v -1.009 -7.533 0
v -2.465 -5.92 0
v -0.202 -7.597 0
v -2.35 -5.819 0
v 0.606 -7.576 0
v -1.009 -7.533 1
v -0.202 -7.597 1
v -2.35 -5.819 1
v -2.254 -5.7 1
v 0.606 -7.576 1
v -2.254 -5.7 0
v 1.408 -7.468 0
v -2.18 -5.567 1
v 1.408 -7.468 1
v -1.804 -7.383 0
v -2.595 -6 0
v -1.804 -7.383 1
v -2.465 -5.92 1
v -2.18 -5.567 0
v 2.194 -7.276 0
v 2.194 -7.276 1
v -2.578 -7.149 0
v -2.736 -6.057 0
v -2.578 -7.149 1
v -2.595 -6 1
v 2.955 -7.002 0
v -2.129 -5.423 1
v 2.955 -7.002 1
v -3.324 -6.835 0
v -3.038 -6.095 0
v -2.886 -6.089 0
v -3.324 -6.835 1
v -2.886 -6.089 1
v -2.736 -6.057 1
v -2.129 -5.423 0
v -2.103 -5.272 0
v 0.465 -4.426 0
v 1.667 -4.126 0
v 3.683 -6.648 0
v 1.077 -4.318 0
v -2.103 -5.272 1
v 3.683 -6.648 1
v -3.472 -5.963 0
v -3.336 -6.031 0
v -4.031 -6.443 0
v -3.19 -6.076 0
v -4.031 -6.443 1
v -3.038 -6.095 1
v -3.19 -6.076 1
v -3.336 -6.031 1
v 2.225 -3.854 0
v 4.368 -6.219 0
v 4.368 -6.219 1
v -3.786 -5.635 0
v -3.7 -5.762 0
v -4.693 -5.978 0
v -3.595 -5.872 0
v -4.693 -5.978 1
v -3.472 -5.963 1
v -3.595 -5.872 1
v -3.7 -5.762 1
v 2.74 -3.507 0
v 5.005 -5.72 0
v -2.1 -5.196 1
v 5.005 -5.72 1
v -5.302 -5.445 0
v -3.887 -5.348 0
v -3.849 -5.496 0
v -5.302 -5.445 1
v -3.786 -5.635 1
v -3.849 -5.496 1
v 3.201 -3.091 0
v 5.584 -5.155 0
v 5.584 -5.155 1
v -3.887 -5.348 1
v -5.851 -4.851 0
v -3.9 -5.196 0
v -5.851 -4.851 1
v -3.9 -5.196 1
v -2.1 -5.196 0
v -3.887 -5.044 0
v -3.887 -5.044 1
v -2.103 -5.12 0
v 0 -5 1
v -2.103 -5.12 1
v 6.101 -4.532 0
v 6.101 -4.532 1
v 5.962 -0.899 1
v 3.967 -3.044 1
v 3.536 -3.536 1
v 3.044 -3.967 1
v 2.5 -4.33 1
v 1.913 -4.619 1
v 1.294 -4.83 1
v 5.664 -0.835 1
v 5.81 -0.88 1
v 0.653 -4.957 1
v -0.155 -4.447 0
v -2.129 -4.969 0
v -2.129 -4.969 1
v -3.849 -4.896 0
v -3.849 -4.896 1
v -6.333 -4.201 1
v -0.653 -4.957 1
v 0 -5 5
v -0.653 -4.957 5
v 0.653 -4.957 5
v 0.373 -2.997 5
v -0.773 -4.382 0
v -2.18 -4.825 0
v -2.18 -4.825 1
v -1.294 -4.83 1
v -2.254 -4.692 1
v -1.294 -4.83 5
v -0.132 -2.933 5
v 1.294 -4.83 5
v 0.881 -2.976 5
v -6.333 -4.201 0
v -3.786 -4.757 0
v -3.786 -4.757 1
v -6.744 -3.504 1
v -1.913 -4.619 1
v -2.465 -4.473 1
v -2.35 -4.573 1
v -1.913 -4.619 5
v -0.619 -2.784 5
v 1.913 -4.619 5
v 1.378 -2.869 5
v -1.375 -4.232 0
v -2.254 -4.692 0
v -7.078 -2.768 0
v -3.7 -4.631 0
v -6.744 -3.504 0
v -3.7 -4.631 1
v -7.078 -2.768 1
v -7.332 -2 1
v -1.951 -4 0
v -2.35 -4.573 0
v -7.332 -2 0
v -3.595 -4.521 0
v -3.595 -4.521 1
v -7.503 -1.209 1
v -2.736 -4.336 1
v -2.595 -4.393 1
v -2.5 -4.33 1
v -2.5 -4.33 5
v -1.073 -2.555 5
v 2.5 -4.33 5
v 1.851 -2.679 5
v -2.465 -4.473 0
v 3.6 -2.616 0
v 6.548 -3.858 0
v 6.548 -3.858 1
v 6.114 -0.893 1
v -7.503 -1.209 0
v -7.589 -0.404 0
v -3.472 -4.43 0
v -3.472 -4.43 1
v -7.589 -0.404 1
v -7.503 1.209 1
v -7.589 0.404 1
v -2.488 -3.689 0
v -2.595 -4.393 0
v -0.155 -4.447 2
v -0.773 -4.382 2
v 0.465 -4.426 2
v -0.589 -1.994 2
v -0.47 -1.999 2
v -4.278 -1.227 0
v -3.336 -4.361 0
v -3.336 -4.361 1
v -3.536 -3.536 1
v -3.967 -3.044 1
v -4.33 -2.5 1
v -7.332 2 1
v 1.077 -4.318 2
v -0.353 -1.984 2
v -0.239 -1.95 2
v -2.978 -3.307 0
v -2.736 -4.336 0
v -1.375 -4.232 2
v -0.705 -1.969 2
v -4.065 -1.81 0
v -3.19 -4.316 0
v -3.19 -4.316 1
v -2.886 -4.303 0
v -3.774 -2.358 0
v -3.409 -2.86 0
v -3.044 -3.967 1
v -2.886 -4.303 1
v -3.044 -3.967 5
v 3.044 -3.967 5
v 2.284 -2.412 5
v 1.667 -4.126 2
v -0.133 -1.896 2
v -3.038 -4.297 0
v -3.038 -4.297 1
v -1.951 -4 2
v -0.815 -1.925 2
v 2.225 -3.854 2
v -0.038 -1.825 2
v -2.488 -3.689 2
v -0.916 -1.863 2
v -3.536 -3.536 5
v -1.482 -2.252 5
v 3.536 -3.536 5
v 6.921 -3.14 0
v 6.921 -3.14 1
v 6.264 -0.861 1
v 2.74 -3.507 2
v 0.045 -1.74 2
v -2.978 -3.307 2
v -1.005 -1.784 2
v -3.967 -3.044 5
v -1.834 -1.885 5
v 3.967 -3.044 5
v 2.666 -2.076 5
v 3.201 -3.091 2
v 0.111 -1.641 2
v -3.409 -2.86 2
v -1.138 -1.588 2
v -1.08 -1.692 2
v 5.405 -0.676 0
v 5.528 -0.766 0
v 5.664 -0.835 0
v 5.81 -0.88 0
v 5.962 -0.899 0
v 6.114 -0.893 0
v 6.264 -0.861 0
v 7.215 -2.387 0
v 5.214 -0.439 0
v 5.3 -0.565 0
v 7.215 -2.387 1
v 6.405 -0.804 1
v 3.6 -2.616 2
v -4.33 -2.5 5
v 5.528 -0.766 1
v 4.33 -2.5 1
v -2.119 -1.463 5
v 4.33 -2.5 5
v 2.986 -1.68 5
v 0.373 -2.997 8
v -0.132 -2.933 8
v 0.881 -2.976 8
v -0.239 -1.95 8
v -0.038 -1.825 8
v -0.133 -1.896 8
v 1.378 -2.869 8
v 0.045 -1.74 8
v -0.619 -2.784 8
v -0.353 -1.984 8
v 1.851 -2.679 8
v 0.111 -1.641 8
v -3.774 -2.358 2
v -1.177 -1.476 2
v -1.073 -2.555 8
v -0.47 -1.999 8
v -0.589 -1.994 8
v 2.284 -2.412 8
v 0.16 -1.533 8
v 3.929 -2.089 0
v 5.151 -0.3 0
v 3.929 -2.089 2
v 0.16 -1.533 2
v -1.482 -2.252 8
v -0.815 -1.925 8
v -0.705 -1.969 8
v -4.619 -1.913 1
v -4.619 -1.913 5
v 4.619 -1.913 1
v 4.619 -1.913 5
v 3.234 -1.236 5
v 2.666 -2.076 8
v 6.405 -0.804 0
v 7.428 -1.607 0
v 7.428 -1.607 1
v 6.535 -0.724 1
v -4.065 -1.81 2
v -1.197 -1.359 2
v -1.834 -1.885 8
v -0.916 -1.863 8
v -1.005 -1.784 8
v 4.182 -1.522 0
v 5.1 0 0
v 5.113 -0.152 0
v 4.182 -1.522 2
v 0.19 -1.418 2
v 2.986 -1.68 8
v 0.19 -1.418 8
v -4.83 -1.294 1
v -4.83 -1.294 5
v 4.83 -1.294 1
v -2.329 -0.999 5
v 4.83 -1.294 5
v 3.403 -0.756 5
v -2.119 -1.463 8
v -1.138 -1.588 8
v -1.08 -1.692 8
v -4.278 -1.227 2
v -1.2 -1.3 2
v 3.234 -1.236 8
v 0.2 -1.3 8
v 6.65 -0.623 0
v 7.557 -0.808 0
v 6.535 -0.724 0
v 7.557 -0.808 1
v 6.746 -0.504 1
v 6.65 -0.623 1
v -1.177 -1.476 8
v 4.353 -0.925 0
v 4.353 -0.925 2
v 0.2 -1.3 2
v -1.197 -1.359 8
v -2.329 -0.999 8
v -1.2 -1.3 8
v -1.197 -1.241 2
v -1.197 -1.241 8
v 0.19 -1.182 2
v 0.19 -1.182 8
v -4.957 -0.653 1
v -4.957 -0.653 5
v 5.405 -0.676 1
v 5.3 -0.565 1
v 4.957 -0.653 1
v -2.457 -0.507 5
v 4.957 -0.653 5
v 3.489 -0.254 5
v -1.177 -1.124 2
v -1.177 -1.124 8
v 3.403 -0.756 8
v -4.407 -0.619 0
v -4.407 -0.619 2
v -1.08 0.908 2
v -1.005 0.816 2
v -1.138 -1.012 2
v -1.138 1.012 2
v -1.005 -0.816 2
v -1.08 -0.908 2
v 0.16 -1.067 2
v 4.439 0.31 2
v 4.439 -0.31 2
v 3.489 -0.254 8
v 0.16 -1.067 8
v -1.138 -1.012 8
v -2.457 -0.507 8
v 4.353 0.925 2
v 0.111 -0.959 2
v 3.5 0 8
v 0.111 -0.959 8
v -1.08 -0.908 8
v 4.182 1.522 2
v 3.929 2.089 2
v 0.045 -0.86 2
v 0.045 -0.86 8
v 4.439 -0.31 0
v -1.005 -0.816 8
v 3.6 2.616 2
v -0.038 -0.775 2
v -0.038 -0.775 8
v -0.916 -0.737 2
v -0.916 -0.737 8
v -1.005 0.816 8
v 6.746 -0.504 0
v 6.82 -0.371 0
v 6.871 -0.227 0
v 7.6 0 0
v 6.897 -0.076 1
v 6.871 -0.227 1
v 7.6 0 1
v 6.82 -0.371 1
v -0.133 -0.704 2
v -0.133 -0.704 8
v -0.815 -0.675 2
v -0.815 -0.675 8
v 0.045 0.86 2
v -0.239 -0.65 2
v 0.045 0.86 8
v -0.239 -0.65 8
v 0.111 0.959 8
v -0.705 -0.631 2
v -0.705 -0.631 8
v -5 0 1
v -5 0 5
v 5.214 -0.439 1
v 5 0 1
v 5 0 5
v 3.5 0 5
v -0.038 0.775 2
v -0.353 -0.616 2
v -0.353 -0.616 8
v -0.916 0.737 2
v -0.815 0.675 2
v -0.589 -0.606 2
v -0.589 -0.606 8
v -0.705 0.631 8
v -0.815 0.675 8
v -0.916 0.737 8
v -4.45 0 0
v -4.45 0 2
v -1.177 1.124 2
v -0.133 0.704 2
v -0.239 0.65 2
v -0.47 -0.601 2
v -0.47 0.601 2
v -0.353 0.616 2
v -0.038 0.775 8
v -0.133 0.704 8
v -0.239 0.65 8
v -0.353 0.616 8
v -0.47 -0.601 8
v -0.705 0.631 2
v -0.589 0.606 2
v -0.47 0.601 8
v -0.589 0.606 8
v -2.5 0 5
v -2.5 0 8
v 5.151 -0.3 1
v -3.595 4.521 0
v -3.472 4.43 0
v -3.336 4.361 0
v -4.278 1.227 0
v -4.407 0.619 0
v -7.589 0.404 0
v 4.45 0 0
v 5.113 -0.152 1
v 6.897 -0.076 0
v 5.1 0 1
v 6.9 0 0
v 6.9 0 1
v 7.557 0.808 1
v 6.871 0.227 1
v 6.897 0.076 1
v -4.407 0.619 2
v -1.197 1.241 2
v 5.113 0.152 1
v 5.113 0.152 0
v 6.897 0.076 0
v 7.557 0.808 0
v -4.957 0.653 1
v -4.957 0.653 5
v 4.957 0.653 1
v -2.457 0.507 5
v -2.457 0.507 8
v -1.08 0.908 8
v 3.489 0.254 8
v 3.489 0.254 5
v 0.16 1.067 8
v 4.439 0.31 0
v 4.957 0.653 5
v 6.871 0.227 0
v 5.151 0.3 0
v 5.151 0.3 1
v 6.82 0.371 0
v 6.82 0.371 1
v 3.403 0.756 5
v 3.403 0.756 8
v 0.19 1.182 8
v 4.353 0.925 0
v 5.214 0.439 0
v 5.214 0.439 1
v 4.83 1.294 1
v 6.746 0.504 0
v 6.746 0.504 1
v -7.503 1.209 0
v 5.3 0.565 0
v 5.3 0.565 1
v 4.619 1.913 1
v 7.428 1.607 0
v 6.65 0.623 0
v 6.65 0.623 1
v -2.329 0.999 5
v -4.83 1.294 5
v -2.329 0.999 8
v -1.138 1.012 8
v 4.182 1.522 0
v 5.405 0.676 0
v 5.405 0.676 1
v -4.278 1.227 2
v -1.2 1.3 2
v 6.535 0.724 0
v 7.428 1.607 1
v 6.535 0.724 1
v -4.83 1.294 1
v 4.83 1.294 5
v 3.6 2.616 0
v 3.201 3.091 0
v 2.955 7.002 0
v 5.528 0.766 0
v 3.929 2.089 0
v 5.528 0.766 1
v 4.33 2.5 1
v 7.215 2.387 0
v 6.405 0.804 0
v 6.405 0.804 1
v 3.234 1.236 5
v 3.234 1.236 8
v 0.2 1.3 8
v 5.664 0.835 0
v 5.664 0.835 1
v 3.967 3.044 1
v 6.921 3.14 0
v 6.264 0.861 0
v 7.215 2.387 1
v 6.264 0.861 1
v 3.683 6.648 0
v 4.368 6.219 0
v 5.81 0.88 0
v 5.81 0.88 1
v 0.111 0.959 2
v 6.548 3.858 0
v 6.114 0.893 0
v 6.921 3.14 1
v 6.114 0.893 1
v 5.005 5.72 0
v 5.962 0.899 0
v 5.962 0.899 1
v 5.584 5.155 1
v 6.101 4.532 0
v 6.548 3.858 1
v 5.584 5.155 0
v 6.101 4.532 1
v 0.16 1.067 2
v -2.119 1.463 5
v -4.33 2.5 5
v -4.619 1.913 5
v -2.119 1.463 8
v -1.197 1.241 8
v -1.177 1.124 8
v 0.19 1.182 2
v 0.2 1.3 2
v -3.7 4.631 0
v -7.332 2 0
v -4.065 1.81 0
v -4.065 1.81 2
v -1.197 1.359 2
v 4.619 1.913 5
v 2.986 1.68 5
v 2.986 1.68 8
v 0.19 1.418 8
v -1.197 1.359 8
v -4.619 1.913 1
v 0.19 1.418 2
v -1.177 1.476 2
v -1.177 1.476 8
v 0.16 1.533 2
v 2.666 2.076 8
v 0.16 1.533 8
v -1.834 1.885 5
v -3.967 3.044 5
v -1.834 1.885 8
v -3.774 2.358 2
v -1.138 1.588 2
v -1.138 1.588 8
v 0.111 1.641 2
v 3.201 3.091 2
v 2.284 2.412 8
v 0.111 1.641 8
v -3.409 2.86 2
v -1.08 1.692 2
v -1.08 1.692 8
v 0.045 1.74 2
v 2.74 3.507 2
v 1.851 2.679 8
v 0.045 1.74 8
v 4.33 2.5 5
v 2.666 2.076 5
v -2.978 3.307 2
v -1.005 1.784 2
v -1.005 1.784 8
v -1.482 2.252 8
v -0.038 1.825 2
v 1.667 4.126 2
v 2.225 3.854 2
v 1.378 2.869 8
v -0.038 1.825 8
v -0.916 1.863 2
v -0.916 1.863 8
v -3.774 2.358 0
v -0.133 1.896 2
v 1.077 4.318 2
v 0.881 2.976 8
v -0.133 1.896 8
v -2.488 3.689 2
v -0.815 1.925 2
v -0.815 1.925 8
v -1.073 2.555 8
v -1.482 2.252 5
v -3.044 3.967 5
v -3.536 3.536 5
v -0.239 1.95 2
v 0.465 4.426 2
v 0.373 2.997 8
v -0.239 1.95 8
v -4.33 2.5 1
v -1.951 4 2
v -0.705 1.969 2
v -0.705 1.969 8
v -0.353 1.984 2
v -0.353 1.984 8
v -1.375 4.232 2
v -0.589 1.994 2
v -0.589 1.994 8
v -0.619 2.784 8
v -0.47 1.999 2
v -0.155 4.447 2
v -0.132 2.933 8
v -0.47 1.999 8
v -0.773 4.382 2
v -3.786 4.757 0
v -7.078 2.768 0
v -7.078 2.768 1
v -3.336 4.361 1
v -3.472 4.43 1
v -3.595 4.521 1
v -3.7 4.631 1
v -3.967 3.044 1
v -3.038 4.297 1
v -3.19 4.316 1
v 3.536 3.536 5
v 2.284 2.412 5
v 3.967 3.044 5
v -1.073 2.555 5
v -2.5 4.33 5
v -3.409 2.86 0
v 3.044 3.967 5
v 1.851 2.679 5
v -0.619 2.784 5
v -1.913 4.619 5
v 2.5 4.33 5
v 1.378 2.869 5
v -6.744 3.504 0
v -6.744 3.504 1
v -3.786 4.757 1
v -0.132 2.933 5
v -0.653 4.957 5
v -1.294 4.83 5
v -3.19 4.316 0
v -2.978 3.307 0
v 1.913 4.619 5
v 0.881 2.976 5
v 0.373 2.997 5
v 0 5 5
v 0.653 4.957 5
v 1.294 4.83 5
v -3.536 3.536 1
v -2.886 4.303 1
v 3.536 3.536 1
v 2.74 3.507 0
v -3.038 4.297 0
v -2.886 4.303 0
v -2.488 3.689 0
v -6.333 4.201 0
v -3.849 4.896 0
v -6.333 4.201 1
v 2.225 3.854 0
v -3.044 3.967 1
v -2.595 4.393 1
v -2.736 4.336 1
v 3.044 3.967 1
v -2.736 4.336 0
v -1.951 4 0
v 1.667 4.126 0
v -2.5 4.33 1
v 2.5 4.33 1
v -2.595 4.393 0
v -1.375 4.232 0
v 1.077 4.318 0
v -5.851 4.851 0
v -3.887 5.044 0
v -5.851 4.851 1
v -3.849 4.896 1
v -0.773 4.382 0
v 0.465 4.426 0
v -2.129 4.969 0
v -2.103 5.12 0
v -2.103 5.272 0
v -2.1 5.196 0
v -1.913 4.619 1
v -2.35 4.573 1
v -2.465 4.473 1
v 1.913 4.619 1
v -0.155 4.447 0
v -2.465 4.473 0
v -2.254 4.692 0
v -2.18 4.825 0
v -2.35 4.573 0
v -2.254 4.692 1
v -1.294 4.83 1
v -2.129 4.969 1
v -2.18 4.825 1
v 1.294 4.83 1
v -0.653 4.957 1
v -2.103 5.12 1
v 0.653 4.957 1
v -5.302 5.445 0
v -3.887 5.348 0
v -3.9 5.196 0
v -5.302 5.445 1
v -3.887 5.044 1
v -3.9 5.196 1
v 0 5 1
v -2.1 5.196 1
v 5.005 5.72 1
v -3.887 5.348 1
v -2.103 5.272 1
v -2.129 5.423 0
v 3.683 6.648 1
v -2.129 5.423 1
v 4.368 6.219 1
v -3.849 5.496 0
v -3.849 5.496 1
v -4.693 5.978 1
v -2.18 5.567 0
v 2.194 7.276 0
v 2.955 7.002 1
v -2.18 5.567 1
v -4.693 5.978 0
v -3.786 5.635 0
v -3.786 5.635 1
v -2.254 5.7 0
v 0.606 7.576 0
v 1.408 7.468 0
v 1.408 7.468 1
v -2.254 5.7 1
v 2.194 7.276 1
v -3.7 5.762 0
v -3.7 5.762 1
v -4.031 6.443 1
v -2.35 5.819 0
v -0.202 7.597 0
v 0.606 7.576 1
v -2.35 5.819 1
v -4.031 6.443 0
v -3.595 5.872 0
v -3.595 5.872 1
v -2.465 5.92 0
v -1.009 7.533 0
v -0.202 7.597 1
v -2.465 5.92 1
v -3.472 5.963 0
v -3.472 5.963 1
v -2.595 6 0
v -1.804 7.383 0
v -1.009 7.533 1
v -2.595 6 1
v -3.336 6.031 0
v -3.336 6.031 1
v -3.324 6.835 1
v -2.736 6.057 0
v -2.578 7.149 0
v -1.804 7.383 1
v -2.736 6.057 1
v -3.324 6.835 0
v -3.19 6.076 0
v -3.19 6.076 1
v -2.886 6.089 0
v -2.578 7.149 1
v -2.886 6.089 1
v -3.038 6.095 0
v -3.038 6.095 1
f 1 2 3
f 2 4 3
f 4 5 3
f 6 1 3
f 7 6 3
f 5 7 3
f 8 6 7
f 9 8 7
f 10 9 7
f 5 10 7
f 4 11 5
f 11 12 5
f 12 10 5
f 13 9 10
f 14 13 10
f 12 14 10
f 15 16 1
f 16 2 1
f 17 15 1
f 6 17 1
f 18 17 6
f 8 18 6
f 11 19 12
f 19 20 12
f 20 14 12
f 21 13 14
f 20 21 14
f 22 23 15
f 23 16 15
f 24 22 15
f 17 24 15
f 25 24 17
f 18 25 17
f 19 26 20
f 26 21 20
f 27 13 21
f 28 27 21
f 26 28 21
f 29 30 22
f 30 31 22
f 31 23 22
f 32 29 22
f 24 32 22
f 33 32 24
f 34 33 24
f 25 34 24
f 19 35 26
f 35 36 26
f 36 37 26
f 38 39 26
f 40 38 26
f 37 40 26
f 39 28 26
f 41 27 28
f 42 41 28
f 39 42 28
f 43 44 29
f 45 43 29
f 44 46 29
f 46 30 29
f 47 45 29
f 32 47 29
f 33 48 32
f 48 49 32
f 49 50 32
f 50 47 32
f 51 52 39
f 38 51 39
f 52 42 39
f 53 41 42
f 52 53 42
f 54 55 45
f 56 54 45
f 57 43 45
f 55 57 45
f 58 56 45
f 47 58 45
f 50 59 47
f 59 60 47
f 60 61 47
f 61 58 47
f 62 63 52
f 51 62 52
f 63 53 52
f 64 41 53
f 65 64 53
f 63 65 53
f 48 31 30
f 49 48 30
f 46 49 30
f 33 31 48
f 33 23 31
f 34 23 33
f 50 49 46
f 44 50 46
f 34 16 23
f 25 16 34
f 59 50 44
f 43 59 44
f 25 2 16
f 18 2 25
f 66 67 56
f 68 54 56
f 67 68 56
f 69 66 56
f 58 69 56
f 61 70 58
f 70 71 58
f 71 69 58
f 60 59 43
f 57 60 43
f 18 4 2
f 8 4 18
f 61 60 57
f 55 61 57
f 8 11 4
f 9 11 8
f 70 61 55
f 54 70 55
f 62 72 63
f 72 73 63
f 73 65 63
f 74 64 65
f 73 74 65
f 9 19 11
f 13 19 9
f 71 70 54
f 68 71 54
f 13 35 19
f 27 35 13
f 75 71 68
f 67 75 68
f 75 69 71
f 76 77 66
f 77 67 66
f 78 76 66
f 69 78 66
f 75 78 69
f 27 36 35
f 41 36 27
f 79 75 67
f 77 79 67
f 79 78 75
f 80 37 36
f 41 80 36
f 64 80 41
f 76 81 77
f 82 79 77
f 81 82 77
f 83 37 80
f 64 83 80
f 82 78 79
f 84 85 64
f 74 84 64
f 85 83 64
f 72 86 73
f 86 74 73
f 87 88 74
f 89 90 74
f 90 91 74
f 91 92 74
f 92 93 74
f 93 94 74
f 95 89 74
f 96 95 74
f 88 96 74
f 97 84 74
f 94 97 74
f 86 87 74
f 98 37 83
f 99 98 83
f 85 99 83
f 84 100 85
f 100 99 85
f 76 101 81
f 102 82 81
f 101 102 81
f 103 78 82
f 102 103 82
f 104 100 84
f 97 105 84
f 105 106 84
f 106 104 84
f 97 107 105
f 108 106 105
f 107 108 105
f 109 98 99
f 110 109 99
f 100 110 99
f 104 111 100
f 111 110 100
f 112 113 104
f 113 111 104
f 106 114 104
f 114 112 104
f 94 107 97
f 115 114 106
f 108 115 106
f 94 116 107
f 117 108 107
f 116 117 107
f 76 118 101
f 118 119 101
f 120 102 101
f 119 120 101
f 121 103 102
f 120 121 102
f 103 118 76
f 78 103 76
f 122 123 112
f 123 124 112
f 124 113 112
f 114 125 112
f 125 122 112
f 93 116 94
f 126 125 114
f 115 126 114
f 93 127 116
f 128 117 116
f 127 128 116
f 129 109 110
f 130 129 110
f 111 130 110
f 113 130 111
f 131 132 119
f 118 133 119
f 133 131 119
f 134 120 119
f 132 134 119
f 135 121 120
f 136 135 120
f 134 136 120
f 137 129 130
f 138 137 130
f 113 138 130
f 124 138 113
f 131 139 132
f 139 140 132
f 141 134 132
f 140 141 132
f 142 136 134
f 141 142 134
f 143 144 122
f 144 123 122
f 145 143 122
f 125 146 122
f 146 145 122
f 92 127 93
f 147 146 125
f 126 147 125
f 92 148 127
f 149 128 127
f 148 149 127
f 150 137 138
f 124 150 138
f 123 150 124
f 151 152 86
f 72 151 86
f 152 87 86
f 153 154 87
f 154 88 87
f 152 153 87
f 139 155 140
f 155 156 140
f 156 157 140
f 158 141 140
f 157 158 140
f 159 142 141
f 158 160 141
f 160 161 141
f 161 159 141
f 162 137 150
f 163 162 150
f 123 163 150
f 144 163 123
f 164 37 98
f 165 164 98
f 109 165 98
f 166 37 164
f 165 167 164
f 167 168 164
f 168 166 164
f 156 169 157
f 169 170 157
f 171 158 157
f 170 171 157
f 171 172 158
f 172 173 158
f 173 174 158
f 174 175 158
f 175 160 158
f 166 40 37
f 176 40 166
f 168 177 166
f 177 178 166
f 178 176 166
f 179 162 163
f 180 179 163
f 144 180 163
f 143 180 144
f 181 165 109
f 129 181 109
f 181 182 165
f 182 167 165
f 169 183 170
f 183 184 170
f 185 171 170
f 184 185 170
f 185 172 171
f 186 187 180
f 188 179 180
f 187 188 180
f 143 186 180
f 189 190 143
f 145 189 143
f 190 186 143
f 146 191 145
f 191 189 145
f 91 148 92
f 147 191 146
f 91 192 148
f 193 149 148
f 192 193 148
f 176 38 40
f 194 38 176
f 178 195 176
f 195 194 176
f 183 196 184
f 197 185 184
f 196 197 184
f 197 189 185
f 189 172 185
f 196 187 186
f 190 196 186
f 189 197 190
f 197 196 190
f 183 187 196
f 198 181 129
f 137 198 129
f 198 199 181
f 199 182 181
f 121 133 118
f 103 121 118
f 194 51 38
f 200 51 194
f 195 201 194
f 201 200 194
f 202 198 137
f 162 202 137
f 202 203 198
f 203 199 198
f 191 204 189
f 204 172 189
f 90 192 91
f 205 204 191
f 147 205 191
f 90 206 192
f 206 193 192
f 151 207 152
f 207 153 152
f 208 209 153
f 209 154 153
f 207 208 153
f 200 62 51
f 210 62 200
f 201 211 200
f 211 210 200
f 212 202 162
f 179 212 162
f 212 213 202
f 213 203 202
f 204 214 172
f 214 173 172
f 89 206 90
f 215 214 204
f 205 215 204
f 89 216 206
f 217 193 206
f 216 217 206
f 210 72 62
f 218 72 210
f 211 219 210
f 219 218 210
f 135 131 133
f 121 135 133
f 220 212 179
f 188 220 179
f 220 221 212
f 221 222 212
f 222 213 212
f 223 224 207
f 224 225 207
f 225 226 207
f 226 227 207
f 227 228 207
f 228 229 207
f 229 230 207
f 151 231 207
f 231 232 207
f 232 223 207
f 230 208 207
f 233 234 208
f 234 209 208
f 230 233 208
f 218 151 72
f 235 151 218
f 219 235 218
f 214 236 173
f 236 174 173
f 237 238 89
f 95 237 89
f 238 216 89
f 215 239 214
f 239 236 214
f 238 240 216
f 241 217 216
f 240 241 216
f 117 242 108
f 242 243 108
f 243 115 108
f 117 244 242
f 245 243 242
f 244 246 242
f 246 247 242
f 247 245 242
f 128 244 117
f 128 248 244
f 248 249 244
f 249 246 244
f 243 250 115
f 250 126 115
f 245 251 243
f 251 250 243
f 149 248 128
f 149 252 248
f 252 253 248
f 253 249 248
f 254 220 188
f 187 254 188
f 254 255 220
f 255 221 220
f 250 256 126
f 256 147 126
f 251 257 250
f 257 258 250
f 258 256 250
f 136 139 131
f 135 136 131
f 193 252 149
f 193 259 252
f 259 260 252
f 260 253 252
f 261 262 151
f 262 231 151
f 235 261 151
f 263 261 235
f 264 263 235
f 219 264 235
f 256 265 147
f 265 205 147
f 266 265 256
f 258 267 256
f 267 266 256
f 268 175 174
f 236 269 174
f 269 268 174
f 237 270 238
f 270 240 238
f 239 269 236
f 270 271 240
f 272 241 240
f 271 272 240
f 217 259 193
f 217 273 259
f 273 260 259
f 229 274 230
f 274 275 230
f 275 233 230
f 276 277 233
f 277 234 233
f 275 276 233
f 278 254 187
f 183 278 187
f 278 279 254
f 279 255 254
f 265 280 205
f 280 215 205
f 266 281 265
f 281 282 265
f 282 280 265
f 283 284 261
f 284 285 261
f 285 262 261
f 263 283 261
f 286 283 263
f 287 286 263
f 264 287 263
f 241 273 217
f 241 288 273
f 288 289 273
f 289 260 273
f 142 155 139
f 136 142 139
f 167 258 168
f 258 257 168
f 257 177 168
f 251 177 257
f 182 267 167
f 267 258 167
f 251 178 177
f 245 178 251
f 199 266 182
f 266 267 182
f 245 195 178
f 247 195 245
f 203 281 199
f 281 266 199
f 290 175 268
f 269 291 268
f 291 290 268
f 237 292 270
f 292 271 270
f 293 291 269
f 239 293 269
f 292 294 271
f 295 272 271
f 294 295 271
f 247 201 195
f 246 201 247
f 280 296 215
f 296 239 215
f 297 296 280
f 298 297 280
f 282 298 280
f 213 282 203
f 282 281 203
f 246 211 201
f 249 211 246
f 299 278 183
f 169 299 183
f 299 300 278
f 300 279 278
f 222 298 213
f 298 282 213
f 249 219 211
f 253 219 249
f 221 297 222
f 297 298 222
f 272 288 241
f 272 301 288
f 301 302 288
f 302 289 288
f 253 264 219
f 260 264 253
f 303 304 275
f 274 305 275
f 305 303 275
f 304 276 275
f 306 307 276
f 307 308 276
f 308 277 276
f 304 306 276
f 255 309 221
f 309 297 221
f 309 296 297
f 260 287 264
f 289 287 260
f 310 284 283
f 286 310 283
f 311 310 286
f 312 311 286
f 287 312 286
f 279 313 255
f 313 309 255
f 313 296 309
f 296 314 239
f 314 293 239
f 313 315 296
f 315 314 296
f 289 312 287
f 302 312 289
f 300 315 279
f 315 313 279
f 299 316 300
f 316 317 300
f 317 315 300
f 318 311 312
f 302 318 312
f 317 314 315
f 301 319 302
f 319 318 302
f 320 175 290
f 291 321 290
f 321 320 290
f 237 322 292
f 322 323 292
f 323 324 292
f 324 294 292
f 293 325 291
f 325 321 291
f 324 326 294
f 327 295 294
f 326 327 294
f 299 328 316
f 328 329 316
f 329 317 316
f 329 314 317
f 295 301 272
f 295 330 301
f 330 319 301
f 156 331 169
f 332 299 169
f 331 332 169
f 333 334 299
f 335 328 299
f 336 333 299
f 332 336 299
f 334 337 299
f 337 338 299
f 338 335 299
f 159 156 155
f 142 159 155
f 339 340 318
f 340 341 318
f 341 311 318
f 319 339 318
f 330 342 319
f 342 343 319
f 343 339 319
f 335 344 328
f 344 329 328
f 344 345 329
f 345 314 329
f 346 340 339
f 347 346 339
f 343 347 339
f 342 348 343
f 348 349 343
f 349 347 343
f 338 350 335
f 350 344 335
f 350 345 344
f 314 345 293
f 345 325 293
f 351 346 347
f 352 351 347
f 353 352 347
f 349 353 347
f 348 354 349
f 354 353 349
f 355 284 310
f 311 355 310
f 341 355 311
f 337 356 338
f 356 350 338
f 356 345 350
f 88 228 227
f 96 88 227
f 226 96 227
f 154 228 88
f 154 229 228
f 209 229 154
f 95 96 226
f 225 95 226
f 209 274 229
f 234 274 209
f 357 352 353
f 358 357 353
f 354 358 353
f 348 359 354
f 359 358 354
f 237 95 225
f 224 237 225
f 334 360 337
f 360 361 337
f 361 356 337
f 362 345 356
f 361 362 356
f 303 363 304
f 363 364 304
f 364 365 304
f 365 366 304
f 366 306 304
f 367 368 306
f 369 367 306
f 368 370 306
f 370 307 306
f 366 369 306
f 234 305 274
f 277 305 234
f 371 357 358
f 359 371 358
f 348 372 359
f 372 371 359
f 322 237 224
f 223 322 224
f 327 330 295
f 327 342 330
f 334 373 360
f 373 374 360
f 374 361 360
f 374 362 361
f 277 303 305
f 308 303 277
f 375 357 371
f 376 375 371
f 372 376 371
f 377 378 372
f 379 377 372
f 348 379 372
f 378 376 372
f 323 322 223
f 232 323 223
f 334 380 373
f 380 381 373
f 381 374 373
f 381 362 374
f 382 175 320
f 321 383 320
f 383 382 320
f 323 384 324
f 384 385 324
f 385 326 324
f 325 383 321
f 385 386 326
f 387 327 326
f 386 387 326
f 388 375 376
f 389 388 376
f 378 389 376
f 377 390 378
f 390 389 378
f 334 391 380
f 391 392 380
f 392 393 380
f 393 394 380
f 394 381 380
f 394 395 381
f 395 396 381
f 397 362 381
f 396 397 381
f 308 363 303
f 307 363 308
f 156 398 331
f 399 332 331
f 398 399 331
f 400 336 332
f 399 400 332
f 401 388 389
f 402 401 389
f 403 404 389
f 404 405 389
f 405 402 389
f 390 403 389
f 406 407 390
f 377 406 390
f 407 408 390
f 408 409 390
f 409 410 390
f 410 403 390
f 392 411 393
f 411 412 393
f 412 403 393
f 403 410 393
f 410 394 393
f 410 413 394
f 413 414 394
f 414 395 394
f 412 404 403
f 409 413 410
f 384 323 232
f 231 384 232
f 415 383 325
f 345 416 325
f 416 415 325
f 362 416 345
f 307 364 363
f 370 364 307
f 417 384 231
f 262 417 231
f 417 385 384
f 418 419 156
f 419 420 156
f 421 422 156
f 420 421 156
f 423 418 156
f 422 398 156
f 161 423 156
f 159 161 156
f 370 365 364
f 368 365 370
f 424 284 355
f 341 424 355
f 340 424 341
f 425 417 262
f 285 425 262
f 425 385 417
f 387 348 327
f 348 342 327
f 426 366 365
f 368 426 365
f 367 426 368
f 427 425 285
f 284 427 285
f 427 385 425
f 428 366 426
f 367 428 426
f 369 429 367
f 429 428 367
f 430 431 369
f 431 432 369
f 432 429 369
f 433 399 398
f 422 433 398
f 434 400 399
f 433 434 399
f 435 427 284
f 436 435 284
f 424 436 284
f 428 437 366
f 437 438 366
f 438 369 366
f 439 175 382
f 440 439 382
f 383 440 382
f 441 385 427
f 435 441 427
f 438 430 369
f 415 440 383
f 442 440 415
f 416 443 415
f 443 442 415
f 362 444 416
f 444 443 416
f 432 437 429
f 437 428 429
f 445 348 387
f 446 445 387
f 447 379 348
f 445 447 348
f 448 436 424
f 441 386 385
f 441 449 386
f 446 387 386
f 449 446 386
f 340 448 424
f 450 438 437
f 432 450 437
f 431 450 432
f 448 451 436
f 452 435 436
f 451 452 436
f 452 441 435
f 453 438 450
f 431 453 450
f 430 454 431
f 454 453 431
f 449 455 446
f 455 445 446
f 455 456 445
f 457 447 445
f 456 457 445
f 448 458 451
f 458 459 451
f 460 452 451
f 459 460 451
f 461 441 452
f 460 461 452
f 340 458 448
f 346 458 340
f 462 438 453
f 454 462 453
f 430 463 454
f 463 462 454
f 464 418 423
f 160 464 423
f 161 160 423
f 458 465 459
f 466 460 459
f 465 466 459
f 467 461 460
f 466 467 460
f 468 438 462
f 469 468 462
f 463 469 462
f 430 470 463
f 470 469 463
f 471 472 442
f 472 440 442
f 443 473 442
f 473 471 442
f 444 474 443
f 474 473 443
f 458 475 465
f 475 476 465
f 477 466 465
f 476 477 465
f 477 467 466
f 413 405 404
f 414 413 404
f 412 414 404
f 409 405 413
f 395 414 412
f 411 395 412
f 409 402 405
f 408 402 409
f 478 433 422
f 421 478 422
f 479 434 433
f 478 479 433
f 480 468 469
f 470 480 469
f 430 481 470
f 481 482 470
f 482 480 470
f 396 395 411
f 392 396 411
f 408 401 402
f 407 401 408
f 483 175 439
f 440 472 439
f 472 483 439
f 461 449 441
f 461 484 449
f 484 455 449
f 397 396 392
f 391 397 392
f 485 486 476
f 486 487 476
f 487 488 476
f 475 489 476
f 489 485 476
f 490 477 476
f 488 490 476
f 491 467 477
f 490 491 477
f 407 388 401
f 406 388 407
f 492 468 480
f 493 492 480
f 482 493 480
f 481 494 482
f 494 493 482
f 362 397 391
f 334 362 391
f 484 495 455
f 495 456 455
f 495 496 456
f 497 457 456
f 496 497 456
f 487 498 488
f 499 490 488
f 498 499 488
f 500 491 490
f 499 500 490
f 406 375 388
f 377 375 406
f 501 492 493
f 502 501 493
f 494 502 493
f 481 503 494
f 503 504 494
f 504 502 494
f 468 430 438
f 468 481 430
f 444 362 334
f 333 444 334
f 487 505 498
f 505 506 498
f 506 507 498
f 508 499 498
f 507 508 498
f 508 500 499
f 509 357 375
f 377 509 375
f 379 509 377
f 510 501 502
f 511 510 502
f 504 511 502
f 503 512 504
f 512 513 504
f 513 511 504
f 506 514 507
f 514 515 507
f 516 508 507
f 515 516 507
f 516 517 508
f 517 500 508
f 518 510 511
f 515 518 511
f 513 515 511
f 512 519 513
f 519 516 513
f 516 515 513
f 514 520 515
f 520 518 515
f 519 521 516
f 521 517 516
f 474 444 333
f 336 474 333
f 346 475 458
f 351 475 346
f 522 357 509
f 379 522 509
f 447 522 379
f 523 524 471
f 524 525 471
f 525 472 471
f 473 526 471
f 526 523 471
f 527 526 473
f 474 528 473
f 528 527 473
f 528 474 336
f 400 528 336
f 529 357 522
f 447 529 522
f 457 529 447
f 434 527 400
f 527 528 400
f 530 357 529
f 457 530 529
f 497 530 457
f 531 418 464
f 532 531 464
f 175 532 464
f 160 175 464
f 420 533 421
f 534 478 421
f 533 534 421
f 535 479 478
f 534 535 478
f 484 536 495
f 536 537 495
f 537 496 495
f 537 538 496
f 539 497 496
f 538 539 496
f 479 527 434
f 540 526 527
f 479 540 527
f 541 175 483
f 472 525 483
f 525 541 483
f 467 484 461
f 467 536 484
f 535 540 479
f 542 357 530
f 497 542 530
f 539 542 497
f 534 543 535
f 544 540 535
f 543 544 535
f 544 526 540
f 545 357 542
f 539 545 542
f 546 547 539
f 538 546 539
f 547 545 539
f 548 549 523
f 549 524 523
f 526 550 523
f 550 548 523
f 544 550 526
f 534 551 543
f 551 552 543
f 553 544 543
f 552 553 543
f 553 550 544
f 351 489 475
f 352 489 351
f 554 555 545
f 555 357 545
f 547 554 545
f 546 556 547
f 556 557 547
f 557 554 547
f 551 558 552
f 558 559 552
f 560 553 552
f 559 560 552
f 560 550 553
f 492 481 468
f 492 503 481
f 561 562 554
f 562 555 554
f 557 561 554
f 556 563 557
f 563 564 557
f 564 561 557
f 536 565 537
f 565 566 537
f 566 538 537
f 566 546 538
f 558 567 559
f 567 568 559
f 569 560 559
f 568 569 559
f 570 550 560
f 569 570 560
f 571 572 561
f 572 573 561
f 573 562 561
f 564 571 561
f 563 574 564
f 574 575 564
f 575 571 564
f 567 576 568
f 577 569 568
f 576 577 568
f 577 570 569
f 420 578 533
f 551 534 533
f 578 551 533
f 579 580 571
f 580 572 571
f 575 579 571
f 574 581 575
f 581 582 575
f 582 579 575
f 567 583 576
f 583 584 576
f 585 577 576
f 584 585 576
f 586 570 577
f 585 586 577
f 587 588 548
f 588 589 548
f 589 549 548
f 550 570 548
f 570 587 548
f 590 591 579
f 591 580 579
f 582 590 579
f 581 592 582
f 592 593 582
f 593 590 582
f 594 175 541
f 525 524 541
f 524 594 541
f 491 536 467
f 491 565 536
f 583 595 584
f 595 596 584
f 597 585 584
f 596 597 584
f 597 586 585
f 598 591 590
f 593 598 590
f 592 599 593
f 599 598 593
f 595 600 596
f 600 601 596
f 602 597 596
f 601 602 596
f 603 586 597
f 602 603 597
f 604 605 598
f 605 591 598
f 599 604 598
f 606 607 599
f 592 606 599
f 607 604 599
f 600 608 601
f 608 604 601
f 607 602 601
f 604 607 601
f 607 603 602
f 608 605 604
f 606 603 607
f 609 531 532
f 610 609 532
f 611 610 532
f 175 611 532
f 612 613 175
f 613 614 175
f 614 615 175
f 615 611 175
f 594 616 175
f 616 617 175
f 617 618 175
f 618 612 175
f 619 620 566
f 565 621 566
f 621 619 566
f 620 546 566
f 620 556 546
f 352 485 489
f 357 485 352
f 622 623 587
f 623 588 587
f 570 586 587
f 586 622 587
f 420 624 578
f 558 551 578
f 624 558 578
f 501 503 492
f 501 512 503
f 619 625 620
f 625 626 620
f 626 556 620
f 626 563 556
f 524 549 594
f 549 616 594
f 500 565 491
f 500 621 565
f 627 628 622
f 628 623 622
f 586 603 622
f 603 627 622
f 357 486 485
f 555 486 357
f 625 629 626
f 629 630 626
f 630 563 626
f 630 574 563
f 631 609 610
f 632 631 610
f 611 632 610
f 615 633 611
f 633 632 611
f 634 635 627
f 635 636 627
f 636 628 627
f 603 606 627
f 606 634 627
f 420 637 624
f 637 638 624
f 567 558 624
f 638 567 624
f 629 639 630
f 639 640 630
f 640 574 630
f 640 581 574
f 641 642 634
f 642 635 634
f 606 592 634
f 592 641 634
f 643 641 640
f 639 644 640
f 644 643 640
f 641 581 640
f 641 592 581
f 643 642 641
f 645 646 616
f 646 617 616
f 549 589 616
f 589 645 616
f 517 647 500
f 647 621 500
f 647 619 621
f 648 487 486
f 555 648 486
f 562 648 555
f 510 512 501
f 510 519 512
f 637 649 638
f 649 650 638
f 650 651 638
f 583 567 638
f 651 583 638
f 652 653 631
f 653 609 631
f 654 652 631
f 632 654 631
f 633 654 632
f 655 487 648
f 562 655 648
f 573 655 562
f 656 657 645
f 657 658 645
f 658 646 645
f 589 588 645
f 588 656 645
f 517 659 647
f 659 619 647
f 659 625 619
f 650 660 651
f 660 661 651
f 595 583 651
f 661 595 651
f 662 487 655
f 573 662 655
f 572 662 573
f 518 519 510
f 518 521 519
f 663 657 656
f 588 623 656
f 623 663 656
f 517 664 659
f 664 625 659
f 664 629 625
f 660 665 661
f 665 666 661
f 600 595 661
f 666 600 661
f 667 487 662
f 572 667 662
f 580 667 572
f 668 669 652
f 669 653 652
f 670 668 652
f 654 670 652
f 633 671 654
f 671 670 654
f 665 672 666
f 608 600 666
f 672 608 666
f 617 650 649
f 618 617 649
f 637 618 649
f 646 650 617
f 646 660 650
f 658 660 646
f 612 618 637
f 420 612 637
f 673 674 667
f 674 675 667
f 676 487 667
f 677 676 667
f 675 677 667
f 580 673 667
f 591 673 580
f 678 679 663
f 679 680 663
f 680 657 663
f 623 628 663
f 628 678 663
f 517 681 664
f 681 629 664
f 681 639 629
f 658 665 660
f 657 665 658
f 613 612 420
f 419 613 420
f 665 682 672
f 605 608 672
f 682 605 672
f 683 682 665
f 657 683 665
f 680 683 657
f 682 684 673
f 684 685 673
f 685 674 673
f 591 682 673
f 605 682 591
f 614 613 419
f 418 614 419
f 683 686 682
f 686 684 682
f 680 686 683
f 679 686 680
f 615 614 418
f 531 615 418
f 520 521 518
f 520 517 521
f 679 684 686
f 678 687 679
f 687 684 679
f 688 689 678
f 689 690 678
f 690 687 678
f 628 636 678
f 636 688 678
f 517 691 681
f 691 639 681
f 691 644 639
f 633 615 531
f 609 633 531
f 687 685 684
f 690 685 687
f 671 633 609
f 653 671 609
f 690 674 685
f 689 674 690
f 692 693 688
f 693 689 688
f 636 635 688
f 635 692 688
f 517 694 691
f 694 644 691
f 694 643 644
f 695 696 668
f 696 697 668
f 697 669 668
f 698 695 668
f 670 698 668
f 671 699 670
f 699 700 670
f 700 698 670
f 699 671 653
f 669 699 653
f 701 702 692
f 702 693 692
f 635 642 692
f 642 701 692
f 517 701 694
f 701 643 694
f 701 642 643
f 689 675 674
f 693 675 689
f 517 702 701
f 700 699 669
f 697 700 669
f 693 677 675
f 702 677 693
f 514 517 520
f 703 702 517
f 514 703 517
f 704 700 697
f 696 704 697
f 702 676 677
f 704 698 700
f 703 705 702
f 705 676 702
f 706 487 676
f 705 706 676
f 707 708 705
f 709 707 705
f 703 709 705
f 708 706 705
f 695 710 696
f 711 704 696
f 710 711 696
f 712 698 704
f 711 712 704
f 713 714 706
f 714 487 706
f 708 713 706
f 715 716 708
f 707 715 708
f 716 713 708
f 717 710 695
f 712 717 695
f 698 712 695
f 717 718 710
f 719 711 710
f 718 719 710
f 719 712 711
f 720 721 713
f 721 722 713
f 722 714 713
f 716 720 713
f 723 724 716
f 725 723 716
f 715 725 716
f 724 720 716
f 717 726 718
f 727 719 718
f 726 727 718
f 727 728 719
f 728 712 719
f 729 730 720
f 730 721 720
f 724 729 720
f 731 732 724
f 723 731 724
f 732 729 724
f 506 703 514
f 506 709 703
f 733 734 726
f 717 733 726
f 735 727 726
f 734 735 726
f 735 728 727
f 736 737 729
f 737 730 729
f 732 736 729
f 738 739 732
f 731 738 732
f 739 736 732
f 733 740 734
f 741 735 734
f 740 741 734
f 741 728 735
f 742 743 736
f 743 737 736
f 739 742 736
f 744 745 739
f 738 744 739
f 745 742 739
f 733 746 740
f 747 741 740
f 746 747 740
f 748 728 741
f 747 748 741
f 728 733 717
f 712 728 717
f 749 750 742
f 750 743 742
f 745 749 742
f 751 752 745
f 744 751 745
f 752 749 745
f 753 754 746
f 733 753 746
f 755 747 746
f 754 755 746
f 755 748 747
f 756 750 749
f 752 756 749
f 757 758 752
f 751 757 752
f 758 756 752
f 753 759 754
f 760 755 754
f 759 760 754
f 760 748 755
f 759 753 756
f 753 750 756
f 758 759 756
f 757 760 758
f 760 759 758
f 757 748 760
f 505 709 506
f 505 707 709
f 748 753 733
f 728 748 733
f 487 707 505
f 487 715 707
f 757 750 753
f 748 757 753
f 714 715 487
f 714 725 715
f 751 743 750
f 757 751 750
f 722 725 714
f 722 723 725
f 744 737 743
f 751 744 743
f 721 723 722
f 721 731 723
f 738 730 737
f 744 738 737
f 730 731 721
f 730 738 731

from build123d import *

# Parameters (mm, degrees)
SKETCH_1_R          = 7.5
SKETCH_1_R_2        = 0.9
SKETCH_1_R_3        = 4.45
EXTRUDE_1_DEPTH     = 1
SKETCH_2_R          = 5
EXTRUDE_2_DEPTH     = 4
SKETCH_3_R          = 4.45
CUT_EXTRUDE_1_DEPTH = 1
SKETCH_5_R          = 3
EXTRUDE_4_DEPTH     = 3
SKETCH_6_R          = 9
SKETCH_6_R_2        = 0.9
SKETCH_6_R_3        = 4.45
EXTRUDE_7_DEPTH     = 1
SKETCH_7_R          = 0.7
CUT_EXTRUDE_2_DEPTH = 10
SKETCH_8_R          = 9
SKETCH_8_R_2        = 7.6
CUT_EXTRUDE_3_DEPTH = 10


with BuildPart() as part:
    # 草图1 → 凸台-拉伸1 (new body)
    with BuildSketch(Plane.XY):
        Circle(SKETCH_1_R)
        with Locations((6, 0)):
            Circle(SKETCH_1_R_2, mode=Mode.SUBTRACT)
        with Locations((-3, -5.196152423)):
            Circle(SKETCH_1_R_2, mode=Mode.SUBTRACT)
        with Locations((-3, 5.196152423)):
            Circle(SKETCH_1_R_2, mode=Mode.SUBTRACT)
        Circle(SKETCH_1_R_3, mode=Mode.SUBTRACT)
    extrude(amount=EXTRUDE_1_DEPTH)

    # 草图2 → 凸台-拉伸2 (add)
    with BuildSketch(Plane.XY.offset(1)):
        Circle(SKETCH_2_R)
    extrude(amount=EXTRUDE_2_DEPTH)

    # 草图3 → 切除-拉伸1 (cut)
    with BuildSketch(Plane(origin=(0, 0, 1), x_dir=(-1, 0, 0), z_dir=(0, 0, -1))):
        Circle(SKETCH_3_R)
    extrude(amount=-CUT_EXTRUDE_1_DEPTH, mode=Mode.SUBTRACT)

    # 草图5 → 凸台-拉伸4 (add)
    with BuildSketch(Plane.XY.offset(5)):
        with Locations((0.5, 0)):
            Circle(SKETCH_5_R)
    extrude(amount=EXTRUDE_4_DEPTH)

    # 草图6 → 凸台-拉伸7 (add)
    with BuildSketch(Plane.XY.offset(1)):
        Circle(SKETCH_6_R)
        with Locations((6, 0)):
            Circle(SKETCH_6_R_2, mode=Mode.SUBTRACT)
        with Locations((-3, 5.196152423)):
            Circle(SKETCH_6_R_2, mode=Mode.SUBTRACT)
        with Locations((-3, -5.196152423)):
            Circle(SKETCH_6_R_2, mode=Mode.SUBTRACT)
        Circle(SKETCH_6_R_3, mode=Mode.SUBTRACT)
    extrude(amount=-EXTRUDE_7_DEPTH)

    # 草图7 → 切除-拉伸2 (cut)
    with BuildSketch(Plane.XY.offset(8)):
        with Locations((-0.5, 1.3)):
            Circle(SKETCH_7_R)
        with Locations((-0.5, -1.3)):
            Circle(SKETCH_7_R)
    extrude(amount=-CUT_EXTRUDE_2_DEPTH, mode=Mode.SUBTRACT)

    # 草图8 → 切除-拉伸3 (cut)
    with BuildSketch(Plane.XY.offset(1)):
        Circle(SKETCH_8_R)
        Circle(SKETCH_8_R_2, mode=Mode.SUBTRACT)
    extrude(amount=-CUT_EXTRUDE_3_DEPTH, mode=Mode.SUBTRACT)


solid = part.part
